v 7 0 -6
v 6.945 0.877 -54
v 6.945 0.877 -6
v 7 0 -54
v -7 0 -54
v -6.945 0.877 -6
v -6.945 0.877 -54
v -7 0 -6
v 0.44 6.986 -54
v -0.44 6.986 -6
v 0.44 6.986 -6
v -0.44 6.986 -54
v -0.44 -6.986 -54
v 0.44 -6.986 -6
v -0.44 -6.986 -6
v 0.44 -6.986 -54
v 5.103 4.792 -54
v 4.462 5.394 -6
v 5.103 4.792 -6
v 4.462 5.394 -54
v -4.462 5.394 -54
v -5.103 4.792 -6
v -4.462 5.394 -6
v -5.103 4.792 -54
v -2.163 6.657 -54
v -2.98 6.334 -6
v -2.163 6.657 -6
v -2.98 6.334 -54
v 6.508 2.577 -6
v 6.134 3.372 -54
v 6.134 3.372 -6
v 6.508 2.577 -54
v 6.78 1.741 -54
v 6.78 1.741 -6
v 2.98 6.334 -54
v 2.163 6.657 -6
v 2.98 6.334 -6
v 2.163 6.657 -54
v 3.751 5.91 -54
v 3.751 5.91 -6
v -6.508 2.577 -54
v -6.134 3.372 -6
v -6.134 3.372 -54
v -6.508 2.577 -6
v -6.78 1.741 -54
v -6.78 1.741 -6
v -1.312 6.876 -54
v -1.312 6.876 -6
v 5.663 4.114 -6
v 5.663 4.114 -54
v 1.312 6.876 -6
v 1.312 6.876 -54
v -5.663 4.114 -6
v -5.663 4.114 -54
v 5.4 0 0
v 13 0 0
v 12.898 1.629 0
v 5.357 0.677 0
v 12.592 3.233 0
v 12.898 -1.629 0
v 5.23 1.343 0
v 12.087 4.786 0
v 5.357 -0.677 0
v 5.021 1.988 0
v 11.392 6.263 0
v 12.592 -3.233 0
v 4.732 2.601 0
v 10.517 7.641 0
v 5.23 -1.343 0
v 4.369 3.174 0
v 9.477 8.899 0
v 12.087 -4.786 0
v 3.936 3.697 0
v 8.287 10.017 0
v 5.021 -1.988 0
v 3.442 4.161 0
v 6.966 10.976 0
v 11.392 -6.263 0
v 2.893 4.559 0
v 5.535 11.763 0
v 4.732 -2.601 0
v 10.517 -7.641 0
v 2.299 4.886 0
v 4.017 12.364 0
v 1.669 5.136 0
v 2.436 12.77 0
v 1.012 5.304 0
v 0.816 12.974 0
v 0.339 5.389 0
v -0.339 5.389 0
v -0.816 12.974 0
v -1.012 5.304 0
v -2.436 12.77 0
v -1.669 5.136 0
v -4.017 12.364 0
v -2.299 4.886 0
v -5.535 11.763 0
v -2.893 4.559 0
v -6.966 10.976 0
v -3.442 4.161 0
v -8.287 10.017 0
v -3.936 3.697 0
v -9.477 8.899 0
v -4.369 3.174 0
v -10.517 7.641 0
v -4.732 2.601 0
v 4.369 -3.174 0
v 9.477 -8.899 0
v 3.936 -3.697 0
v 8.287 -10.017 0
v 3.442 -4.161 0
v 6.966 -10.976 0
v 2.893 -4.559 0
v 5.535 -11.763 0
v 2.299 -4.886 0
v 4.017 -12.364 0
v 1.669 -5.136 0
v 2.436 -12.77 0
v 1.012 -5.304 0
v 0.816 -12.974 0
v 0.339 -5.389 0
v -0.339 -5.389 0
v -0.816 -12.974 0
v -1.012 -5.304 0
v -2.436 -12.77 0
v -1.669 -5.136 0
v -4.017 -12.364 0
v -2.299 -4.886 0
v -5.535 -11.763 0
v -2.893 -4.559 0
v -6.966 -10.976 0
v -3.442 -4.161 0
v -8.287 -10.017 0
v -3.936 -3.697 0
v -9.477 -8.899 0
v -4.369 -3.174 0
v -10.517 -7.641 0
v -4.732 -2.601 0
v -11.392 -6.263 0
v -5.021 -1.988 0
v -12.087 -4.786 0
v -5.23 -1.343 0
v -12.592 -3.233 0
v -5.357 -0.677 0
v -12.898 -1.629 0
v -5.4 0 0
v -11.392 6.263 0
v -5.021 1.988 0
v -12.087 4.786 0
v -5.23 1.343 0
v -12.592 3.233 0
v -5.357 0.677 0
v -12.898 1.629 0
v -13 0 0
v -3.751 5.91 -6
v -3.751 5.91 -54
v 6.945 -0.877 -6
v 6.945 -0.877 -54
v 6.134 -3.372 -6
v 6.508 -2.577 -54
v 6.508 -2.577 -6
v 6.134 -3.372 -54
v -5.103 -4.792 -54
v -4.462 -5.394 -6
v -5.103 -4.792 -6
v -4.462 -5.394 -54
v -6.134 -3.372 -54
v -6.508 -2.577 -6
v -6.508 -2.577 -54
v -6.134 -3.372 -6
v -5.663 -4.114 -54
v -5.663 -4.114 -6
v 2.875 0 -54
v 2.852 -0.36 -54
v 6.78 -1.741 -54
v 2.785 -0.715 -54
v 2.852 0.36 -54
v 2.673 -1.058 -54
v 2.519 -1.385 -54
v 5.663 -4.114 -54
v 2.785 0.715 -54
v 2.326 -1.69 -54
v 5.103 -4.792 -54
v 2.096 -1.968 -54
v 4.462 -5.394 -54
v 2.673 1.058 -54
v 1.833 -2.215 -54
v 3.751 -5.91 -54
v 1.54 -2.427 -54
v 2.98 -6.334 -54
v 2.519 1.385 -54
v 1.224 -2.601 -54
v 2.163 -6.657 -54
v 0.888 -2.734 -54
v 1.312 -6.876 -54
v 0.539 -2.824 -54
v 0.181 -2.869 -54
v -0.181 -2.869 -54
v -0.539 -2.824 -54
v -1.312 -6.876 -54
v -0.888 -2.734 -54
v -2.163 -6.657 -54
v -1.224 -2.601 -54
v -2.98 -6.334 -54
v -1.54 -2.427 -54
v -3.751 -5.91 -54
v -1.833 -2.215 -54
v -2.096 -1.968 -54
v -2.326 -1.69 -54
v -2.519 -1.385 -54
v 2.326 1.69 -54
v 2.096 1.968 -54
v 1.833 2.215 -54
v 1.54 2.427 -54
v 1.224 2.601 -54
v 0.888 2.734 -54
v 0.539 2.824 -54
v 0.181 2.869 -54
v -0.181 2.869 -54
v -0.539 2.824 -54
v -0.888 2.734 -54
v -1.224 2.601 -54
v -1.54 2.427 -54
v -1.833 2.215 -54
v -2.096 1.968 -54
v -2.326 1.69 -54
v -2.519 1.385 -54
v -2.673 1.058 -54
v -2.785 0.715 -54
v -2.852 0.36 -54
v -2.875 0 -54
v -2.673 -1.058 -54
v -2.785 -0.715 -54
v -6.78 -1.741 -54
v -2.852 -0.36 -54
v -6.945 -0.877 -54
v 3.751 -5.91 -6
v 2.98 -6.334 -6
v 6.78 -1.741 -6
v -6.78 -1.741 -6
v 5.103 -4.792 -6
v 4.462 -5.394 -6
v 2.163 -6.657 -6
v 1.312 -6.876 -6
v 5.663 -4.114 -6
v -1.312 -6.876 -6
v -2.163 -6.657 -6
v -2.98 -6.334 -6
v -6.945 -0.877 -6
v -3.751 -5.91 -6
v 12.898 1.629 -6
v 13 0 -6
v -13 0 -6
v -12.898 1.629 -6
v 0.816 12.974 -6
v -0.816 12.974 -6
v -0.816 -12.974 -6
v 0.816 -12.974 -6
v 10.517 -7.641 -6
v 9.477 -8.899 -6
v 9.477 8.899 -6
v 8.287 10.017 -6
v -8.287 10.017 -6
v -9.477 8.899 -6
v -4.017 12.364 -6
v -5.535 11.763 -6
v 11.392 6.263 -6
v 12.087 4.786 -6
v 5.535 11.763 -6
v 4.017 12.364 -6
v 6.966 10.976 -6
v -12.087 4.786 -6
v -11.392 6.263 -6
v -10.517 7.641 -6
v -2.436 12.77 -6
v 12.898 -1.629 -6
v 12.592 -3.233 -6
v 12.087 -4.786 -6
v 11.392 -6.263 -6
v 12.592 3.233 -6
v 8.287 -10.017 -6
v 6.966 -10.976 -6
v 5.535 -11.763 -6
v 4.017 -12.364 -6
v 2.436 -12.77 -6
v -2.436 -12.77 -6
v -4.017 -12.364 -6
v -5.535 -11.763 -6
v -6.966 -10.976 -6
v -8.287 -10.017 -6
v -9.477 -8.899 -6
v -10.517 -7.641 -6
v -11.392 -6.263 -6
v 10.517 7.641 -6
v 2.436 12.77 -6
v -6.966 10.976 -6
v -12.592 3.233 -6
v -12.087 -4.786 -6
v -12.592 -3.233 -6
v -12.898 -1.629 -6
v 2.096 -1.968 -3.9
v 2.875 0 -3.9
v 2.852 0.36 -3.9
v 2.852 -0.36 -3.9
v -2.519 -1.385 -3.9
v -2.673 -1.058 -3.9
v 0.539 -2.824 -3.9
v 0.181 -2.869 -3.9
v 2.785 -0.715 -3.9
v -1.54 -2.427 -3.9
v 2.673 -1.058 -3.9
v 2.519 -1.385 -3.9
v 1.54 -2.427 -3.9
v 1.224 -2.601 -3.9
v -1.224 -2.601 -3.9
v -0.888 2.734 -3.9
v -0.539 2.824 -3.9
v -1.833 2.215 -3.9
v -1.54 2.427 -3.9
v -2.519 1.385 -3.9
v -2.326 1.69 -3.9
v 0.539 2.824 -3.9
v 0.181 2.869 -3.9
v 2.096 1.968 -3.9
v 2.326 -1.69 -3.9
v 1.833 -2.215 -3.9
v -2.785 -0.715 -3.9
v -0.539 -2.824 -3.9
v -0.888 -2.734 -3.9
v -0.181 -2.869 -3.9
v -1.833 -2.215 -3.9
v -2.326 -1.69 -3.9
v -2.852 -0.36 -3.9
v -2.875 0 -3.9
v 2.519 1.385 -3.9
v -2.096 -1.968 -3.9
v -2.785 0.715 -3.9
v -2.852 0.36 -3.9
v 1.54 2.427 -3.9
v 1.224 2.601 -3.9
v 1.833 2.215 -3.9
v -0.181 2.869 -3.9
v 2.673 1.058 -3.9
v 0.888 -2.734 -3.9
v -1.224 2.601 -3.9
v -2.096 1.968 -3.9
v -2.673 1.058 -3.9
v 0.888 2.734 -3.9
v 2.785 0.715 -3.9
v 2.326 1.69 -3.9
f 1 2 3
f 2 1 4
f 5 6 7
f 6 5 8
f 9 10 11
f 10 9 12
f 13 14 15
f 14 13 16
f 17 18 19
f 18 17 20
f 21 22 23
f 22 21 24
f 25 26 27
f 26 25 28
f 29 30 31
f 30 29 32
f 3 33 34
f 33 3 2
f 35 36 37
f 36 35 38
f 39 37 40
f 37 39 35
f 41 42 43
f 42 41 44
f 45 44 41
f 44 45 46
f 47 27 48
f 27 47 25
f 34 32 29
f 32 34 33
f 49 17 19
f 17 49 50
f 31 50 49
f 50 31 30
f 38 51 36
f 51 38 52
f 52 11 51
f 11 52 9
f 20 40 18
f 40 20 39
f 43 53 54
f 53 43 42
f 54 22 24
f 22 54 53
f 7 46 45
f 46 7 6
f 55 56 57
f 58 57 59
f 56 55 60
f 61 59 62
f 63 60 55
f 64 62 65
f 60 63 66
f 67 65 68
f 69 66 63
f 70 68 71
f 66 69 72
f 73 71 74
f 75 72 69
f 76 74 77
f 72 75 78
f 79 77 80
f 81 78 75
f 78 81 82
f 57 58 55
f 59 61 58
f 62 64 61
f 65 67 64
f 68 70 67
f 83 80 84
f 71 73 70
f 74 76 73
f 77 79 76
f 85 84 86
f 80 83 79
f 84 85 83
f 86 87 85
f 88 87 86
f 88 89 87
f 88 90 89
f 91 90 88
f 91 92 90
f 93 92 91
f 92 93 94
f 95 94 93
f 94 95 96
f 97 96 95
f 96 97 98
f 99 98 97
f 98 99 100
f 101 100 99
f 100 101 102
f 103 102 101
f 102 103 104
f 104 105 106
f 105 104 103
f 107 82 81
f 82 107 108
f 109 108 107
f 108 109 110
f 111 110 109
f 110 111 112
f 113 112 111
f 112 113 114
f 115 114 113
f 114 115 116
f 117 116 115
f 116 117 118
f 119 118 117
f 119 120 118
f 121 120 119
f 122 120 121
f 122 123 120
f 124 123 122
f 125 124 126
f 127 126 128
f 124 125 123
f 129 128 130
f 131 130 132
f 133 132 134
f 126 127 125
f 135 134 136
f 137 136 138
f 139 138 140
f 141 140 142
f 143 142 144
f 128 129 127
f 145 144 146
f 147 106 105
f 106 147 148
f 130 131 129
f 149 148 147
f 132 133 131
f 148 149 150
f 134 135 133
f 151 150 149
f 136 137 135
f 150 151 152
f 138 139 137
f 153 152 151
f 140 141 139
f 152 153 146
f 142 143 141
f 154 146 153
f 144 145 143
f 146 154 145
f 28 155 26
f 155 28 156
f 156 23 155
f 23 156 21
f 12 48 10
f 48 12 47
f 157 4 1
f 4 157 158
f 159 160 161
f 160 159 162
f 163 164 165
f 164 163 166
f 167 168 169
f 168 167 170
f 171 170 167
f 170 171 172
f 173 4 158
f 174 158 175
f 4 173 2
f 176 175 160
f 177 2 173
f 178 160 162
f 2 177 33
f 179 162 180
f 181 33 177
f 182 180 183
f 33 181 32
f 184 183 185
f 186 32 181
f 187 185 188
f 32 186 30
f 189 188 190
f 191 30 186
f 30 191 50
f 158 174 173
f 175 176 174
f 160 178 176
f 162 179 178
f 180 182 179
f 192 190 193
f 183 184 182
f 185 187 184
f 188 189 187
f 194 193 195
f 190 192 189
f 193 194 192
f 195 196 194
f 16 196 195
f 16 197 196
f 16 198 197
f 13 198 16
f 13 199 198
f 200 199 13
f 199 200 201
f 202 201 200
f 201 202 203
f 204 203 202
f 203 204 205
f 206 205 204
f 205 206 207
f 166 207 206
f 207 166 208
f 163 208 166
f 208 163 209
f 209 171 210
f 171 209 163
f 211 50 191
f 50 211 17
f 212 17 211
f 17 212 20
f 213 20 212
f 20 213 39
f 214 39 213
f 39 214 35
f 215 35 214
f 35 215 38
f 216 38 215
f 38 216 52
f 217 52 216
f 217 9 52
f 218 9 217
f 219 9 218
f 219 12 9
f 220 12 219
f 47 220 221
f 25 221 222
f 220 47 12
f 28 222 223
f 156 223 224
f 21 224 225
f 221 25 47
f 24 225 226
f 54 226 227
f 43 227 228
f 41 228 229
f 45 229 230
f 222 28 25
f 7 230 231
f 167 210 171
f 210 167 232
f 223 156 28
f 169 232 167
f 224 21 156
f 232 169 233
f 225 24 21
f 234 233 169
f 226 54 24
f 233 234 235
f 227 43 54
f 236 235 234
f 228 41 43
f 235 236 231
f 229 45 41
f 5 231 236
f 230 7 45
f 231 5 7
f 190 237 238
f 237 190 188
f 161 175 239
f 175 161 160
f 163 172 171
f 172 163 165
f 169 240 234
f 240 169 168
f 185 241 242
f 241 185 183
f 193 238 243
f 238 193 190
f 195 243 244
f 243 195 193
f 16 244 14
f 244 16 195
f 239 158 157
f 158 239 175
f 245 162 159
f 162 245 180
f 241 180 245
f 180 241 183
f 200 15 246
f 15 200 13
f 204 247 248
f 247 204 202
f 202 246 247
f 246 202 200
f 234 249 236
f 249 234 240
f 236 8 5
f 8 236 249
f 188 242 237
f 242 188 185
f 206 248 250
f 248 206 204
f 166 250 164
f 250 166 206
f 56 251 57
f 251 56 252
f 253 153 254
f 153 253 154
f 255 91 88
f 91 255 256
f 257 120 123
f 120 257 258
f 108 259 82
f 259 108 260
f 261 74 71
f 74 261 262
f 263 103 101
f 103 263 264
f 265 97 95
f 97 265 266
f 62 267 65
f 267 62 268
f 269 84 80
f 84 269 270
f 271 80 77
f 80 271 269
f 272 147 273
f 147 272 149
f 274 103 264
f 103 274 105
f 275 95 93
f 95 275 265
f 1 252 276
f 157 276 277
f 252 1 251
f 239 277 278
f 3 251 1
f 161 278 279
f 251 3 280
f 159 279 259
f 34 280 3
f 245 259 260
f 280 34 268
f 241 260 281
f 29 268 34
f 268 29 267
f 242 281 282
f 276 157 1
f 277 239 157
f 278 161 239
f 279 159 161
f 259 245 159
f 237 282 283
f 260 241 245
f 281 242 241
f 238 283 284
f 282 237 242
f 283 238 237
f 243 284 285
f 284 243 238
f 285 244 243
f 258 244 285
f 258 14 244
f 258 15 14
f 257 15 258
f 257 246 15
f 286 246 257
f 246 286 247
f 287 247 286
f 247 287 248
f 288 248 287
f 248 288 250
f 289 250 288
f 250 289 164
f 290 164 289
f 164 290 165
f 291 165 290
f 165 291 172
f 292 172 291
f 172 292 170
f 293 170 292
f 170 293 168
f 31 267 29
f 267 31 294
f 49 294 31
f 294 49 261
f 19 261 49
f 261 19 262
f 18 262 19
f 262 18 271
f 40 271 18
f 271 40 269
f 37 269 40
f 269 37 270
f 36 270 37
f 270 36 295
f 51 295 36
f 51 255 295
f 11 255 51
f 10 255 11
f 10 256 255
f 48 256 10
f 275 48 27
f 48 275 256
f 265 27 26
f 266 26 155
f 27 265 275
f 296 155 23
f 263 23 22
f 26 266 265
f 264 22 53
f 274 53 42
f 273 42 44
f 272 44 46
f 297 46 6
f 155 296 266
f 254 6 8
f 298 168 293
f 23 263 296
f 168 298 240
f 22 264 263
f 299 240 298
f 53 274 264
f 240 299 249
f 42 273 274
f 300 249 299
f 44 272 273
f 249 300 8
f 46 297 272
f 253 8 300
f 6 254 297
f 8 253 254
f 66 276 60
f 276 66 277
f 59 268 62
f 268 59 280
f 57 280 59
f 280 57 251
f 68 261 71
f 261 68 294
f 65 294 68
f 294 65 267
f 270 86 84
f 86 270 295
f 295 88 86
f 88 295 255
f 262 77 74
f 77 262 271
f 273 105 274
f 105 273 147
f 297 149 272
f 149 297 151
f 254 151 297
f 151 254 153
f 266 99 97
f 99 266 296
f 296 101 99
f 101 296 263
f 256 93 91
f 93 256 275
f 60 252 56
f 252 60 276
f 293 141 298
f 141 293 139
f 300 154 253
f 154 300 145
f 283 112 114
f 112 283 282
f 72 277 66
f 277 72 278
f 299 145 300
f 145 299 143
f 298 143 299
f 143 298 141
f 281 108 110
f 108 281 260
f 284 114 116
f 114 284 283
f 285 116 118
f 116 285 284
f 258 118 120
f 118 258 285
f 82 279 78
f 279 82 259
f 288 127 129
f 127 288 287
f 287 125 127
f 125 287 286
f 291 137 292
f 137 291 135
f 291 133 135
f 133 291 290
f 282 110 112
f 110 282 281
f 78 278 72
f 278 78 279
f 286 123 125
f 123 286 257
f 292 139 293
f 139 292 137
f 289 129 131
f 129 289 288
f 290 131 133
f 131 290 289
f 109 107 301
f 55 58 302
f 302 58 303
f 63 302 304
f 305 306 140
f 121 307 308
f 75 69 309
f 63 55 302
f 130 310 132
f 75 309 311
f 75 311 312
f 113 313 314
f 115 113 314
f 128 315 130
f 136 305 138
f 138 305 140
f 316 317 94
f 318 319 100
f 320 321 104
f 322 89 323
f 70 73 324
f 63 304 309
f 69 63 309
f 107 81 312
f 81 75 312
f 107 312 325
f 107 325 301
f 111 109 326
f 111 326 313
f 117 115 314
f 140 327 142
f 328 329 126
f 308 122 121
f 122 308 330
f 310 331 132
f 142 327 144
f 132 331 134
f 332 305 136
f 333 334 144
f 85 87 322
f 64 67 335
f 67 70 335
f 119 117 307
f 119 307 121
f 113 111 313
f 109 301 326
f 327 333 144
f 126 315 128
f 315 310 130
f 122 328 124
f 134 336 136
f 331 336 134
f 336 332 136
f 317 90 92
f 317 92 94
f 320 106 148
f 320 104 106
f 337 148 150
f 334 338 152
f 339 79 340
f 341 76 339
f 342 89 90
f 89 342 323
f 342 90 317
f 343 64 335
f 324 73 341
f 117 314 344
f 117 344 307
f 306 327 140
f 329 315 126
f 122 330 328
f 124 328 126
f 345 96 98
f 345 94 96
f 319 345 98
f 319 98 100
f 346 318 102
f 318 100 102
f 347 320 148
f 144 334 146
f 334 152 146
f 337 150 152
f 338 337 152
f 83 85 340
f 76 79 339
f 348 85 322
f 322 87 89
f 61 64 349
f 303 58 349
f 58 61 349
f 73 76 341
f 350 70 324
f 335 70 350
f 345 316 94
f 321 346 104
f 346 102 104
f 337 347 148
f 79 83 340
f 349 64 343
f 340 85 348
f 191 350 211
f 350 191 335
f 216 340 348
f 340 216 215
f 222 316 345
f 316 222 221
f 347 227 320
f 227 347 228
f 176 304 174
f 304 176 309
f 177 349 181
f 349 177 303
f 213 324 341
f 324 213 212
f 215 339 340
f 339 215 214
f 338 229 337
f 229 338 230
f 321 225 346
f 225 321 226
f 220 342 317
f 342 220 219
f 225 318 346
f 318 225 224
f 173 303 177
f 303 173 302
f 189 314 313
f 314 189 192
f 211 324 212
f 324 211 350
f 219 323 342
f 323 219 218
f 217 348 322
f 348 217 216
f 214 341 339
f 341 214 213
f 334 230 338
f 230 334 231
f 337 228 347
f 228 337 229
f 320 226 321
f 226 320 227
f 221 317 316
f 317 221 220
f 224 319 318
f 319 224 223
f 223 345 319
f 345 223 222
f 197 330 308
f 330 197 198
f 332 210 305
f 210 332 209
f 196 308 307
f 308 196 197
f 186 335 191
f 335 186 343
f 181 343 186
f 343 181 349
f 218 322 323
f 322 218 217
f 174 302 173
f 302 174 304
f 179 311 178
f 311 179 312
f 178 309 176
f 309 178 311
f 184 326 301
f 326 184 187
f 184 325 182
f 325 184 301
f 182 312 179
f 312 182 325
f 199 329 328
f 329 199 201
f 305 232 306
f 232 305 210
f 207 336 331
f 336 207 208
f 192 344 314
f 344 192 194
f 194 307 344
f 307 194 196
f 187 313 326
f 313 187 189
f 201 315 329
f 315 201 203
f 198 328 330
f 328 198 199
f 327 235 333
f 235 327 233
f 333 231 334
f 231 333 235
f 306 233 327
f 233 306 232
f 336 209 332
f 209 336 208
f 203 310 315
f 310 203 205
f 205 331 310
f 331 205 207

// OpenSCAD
$fn = 50;


difference() {
	union() {
		translate(v = [0, 0, -54.0000000000]) {
			cylinder(h = 54, r = 7.0000000000);
		}
		translate(v = [0, 0, -6.0000000000]) {
			cylinder(h = 6, r = 13.0000000000);
		}
	}
	union() {
		translate(v = [0, 0, 0]) {
			rotate(a = [0, 0, 0]) {
				difference() {
					union() {
						#translate(v = [0, 0, -54.0000000000]) {
							cylinder(h = 54, r = 2.6000000000);
						}
						#translate(v = [0, 0, -3.9000000000]) {
							cylinder(h = 3.9000000000, r = 7.0000000000, r1 = 2.8750000000, r2 = 5.4000000000);
						}
						#translate(v = [0, 0, -54.0000000000]) {
							cylinder(h = 54, r = 2.8750000000);
						}
						#translate(v = [0, 0, -54.0000000000]) {
							cylinder(h = 54, r = 2.6000000000);
						}
					}
					union();
				}
			}
		}
	}
}
